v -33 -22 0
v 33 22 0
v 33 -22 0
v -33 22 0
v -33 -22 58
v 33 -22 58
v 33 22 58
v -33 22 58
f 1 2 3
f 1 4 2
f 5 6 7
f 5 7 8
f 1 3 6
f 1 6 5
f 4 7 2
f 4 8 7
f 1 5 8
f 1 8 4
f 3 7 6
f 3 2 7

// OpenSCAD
// Gemini 4 Argon Parametric OpenSCAD — PRT-04: MGN9H Linear Rail X-Axis Pipette Shuttle Carriage
$fn = 64;
translate([-33.00, -22.00, 0])
  cube([66, 44, 58]);
